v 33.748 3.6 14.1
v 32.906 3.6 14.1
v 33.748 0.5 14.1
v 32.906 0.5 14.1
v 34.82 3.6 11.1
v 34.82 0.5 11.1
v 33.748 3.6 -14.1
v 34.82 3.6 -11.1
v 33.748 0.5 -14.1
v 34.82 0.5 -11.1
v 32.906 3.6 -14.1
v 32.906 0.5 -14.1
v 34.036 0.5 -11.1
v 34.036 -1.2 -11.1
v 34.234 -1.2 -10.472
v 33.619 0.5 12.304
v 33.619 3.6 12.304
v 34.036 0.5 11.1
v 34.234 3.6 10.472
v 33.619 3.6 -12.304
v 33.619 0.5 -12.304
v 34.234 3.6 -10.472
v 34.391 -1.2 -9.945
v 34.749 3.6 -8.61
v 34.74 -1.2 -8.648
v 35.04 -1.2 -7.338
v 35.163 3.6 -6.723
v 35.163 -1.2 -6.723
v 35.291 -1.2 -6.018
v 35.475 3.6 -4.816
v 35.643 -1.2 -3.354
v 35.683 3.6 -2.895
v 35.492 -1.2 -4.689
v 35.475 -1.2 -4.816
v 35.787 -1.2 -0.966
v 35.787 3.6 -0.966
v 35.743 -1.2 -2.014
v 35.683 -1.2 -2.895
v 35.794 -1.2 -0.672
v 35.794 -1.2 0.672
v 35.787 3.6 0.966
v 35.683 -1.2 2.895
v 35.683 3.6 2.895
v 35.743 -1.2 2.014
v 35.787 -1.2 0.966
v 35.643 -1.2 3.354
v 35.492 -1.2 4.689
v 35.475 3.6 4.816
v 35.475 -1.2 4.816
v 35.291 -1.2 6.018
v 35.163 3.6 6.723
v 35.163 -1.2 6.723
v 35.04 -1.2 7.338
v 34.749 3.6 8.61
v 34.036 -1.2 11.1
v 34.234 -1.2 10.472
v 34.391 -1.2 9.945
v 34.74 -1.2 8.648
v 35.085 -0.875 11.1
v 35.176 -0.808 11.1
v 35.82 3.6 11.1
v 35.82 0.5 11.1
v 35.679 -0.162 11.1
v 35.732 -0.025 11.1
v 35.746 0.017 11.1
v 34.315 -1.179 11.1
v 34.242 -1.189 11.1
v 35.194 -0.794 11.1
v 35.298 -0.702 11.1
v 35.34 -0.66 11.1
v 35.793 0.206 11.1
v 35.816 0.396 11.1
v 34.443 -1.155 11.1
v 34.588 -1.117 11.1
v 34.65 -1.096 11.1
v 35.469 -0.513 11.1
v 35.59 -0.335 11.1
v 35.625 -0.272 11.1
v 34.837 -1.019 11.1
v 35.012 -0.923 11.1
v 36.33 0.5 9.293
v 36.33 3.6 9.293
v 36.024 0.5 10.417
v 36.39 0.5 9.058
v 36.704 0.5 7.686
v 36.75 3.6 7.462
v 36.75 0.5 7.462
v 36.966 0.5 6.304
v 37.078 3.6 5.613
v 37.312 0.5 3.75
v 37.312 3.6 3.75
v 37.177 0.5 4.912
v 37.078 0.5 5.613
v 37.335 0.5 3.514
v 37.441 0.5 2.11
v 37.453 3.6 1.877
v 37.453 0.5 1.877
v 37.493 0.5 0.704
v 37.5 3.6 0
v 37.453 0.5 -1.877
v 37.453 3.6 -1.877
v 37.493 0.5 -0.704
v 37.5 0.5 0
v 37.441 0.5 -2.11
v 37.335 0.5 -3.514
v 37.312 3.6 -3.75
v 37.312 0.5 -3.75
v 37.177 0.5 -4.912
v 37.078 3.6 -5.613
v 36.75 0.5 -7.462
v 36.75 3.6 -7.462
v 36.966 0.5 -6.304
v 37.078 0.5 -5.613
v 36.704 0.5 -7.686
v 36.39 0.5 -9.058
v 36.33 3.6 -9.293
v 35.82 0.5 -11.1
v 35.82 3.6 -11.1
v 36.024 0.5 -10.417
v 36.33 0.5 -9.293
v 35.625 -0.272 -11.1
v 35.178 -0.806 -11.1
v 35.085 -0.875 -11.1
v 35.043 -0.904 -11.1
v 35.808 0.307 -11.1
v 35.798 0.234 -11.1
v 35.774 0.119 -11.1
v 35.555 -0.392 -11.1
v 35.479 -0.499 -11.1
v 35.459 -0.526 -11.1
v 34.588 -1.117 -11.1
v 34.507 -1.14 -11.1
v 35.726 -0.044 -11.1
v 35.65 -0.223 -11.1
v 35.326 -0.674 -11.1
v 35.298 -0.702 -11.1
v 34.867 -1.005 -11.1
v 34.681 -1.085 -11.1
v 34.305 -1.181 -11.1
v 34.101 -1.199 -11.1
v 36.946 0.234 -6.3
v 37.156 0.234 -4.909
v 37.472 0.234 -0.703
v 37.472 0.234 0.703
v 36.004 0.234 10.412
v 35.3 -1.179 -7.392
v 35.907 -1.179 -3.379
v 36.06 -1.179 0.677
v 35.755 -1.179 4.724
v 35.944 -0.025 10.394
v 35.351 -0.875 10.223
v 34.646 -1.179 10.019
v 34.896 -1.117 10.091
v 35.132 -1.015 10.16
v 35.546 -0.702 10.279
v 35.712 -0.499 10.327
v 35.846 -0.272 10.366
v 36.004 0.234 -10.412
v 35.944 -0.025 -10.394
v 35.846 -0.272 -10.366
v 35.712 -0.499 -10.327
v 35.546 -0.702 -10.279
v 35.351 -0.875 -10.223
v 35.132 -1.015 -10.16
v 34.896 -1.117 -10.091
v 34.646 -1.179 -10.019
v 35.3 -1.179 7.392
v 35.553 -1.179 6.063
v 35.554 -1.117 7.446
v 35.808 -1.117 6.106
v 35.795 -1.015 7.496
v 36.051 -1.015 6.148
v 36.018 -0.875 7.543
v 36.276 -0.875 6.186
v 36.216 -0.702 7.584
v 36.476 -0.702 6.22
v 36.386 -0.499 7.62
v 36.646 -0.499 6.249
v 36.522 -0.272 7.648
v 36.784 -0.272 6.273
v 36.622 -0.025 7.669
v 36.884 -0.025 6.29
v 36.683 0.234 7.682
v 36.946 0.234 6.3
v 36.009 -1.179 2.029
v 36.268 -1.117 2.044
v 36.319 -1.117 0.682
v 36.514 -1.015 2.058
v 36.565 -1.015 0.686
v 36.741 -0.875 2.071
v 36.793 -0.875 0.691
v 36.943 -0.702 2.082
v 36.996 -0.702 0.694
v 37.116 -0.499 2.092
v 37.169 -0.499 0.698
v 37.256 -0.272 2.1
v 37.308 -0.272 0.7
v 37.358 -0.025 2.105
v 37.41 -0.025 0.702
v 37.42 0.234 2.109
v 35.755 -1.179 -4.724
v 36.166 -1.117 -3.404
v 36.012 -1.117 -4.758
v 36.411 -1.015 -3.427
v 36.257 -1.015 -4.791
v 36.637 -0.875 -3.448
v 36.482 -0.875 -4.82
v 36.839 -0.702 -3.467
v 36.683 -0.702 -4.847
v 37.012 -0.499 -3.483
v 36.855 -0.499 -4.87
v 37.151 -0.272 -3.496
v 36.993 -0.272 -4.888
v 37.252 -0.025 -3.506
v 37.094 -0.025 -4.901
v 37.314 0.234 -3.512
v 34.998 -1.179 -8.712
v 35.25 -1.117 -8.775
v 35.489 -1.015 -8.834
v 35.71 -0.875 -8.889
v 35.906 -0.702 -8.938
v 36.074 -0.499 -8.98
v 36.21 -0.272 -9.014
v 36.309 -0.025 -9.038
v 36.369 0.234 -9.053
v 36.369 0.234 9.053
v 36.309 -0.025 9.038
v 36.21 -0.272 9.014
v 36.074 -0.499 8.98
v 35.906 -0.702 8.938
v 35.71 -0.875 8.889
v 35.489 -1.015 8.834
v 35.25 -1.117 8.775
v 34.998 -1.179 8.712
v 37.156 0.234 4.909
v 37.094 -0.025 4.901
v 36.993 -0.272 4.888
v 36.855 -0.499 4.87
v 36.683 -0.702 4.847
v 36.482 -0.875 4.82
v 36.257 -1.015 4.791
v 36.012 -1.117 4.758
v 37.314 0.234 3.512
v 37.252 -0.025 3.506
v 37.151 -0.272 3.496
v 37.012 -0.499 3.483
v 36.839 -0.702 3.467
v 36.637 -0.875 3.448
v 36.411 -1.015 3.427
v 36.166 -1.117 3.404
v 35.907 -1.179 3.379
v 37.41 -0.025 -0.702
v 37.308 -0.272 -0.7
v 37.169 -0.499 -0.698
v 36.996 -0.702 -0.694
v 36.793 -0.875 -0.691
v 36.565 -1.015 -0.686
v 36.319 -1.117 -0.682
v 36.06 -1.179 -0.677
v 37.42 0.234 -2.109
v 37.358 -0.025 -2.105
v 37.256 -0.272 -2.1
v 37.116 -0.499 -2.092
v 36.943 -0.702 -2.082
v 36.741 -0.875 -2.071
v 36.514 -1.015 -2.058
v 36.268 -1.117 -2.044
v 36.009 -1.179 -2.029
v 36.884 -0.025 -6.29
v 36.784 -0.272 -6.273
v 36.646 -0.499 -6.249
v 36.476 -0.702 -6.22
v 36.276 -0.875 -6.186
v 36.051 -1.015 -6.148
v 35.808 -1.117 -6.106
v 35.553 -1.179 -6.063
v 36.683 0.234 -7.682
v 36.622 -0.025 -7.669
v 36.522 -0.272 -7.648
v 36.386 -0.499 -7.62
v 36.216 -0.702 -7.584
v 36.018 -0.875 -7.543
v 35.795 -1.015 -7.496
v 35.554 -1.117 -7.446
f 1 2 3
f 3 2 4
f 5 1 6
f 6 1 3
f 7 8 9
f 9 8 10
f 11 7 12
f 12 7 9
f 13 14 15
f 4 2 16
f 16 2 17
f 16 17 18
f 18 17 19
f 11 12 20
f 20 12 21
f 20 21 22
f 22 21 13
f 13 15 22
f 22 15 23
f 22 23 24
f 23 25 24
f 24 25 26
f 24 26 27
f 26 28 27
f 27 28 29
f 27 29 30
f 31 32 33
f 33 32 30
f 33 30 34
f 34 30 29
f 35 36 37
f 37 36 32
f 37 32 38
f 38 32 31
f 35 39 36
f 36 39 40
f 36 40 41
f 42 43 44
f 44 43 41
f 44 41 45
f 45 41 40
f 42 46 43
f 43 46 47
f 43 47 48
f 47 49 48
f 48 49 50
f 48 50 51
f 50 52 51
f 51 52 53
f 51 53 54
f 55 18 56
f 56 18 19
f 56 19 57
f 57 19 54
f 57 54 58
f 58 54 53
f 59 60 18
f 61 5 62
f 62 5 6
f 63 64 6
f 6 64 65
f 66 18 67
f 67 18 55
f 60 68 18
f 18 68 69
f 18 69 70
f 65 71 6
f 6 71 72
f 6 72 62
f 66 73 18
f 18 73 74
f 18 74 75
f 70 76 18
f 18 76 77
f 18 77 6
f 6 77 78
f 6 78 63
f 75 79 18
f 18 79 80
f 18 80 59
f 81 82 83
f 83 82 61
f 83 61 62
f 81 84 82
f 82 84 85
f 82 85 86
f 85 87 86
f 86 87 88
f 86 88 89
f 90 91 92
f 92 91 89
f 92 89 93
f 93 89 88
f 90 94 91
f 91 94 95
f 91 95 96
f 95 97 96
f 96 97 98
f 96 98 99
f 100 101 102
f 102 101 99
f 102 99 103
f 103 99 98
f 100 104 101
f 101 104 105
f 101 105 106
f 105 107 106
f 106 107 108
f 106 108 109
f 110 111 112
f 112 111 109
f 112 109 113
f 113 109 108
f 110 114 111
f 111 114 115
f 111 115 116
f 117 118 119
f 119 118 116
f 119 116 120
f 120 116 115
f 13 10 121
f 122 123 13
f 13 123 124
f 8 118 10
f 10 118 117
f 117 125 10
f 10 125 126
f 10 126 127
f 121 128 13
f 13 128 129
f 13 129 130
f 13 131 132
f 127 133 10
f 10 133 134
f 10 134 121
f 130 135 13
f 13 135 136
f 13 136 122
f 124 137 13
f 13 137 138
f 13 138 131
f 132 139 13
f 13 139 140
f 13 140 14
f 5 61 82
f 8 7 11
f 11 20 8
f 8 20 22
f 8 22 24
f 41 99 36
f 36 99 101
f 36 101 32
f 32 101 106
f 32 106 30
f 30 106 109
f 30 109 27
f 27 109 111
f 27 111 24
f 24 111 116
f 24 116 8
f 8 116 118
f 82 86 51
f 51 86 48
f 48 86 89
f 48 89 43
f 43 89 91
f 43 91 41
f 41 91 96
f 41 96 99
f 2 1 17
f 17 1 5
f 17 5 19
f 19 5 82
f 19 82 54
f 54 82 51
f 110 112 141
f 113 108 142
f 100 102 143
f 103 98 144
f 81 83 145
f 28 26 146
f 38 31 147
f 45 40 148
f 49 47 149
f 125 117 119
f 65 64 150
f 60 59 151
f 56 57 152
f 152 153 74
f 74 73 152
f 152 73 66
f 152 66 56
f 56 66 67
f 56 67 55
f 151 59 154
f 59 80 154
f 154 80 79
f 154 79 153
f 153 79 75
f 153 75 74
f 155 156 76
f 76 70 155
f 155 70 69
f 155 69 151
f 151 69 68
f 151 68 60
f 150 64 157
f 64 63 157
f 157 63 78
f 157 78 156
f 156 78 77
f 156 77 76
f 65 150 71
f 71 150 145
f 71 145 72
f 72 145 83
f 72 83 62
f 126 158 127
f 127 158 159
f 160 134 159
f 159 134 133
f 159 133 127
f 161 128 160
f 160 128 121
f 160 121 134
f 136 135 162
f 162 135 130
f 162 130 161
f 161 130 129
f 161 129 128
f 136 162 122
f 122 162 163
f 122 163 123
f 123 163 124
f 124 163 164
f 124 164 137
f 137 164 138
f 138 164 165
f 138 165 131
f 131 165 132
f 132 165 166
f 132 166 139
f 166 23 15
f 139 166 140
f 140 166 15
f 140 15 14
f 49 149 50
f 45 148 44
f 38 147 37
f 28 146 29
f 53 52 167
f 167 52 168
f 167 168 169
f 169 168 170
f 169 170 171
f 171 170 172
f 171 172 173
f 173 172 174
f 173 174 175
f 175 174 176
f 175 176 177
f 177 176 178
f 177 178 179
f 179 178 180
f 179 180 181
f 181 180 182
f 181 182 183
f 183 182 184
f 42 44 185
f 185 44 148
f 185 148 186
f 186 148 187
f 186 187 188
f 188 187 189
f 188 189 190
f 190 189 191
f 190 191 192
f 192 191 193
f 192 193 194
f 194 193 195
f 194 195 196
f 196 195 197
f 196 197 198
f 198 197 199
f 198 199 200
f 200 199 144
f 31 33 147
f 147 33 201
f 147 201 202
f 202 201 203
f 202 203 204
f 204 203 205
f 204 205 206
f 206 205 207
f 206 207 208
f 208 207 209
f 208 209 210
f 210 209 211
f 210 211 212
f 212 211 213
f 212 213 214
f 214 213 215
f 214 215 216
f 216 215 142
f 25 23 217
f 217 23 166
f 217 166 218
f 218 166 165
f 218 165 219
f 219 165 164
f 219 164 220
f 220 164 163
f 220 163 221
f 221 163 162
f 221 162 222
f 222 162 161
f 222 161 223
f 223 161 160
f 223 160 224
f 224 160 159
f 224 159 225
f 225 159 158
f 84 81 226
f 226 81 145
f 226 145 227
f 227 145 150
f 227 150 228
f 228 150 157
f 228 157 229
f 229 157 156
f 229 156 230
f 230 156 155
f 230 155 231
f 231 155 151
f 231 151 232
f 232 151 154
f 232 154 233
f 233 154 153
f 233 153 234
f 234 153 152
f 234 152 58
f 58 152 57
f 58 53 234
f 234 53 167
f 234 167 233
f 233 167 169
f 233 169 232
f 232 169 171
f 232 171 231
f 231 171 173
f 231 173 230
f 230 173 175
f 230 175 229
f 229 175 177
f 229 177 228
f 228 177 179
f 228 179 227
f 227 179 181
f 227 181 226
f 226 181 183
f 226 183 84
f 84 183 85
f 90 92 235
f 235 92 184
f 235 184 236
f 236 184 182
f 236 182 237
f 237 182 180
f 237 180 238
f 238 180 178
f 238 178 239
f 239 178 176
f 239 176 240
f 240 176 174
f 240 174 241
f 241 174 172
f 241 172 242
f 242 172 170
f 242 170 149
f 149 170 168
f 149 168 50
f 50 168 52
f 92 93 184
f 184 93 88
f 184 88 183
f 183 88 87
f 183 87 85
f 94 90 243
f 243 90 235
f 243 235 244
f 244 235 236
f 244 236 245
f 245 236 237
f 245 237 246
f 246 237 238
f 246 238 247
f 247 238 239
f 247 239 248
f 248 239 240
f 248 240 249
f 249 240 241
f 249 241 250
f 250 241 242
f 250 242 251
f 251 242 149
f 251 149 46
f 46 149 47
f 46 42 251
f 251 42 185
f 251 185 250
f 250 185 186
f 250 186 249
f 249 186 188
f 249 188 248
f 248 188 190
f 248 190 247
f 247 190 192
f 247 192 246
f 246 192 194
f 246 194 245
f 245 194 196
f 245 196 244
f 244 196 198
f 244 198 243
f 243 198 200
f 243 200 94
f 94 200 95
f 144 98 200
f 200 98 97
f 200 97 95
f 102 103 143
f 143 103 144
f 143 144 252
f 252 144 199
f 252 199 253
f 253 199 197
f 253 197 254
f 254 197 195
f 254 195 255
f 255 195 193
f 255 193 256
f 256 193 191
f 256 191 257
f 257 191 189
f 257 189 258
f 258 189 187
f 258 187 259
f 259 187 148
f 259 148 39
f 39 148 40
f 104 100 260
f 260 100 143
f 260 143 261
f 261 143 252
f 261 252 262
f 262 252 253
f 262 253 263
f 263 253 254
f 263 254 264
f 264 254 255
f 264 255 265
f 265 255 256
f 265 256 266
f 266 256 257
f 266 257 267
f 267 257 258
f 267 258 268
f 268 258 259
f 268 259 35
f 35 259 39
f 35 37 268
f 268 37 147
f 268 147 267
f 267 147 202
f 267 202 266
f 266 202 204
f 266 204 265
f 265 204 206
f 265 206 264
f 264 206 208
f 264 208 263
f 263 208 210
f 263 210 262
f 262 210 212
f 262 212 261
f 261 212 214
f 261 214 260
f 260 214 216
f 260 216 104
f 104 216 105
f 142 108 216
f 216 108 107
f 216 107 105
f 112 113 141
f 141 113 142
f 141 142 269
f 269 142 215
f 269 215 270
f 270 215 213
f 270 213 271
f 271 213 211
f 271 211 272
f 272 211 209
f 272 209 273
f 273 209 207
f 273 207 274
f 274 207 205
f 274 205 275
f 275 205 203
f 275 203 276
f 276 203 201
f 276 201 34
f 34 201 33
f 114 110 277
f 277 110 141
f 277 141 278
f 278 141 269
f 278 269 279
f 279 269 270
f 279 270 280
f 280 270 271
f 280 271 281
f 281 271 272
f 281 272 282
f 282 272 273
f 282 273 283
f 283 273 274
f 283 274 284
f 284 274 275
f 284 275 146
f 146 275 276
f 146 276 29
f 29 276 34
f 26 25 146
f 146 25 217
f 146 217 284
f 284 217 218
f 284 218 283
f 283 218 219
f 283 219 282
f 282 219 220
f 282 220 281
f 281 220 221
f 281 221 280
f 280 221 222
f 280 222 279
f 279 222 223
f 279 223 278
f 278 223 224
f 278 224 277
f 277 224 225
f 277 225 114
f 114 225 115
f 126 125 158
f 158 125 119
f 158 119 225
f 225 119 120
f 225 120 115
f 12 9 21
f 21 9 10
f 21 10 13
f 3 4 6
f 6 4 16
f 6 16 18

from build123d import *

# Parameters (mm, degrees)
BOSS_EXTRUDE1_DEPTH = 3.6
BOSS_EXTRUDE2_START = 1.2
BOSS_EXTRUDE2_DEPTH = 1.2
FILLET1_R           = 1.7
CUT_EXTRUDE1_DEPTH  = 0.5


with BuildPart() as part:
    # Sketch1 → Boss-Extrude1 (new body)
    with BuildSketch(Plane(origin=(0, 0, 0), x_dir=(1, 0, 0), z_dir=(0, 1, 0))):
        with BuildLine():
            Line((34.819547736, 11.1), (35.819547736, 11.1))
            ThreePointArc((35.819547736, 11.1), (37.5, 0), (35.819547736, -11.1))
            Line((35.819547736, -11.1), (34.819547736, -11.1))
            Line((34.819547736, -11.1), (33.748237365, -14.1))
            Line((33.748237365, -14.1), (32.90638236, -14.1))
            ThreePointArc((32.90638236, -14.1), (35.8, 0), (32.90638236, 14.1))
            Line((32.90638236, 14.1), (33.748237365, 14.1))
            Line((33.748237365, 14.1), (34.819547736, 11.1))
        make_face()
    extrude(amount=BOSS_EXTRUDE1_DEPTH)

    # Sketch2 → Boss-Extrude2 (add)
    with BuildSketch(Plane.XZ.offset(BOSS_EXTRUDE2_START)):
        with BuildLine():
            Line((35.819547736, 11.1), (34.035716534, 11.1))
            ThreePointArc((34.035716534, 11.1), (35.8, 0), (34.035716534, -11.1))
            Line((34.035716534, -11.1), (35.819547736, -11.1))
            ThreePointArc((35.819547736, -11.1), (37.5, 0), (35.819547736, 11.1))
        make_face()
    extrude(amount=-BOSS_EXTRUDE2_DEPTH)

    # Fillet1
    fillet1_edges = [part.edges().sort_by_distance(p)[0] for p in [
        (37.5, -1.2, 0),
    ]]
    fillet(fillet1_edges, radius=FILLET1_R - 0.0001)  # a hair under: the kernel refuses the full size

    # Sketch5 → Cut-Extrude1 (cut)
    with BuildSketch(Plane.XZ):
        with BuildLine():
            Line((34.819547736, -11.1), (34.035716534, -11.1))
            ThreePointArc((34.035716534, -11.1), (33.504643724, -12.612646388), (32.90638236, -14.1))
            Line((32.90638236, -14.1), (33.748237365, -14.1))
            Line((33.748237365, -14.1), (34.819547736, -11.1))
        make_face()
        with BuildLine():
            Line((34.035716534, 11.1), (34.819547736, 11.1))
            Line((34.819547736, 11.1), (33.748237365, 14.1))
            Line((33.748237365, 14.1), (32.90638236, 14.1))
            ThreePointArc((32.90638236, 14.1), (33.504643724, 12.612646388), (34.035716534, 11.1))
        make_face()
    extrude(amount=-CUT_EXTRUDE1_DEPTH, mode=Mode.SUBTRACT)


solid = part.part
